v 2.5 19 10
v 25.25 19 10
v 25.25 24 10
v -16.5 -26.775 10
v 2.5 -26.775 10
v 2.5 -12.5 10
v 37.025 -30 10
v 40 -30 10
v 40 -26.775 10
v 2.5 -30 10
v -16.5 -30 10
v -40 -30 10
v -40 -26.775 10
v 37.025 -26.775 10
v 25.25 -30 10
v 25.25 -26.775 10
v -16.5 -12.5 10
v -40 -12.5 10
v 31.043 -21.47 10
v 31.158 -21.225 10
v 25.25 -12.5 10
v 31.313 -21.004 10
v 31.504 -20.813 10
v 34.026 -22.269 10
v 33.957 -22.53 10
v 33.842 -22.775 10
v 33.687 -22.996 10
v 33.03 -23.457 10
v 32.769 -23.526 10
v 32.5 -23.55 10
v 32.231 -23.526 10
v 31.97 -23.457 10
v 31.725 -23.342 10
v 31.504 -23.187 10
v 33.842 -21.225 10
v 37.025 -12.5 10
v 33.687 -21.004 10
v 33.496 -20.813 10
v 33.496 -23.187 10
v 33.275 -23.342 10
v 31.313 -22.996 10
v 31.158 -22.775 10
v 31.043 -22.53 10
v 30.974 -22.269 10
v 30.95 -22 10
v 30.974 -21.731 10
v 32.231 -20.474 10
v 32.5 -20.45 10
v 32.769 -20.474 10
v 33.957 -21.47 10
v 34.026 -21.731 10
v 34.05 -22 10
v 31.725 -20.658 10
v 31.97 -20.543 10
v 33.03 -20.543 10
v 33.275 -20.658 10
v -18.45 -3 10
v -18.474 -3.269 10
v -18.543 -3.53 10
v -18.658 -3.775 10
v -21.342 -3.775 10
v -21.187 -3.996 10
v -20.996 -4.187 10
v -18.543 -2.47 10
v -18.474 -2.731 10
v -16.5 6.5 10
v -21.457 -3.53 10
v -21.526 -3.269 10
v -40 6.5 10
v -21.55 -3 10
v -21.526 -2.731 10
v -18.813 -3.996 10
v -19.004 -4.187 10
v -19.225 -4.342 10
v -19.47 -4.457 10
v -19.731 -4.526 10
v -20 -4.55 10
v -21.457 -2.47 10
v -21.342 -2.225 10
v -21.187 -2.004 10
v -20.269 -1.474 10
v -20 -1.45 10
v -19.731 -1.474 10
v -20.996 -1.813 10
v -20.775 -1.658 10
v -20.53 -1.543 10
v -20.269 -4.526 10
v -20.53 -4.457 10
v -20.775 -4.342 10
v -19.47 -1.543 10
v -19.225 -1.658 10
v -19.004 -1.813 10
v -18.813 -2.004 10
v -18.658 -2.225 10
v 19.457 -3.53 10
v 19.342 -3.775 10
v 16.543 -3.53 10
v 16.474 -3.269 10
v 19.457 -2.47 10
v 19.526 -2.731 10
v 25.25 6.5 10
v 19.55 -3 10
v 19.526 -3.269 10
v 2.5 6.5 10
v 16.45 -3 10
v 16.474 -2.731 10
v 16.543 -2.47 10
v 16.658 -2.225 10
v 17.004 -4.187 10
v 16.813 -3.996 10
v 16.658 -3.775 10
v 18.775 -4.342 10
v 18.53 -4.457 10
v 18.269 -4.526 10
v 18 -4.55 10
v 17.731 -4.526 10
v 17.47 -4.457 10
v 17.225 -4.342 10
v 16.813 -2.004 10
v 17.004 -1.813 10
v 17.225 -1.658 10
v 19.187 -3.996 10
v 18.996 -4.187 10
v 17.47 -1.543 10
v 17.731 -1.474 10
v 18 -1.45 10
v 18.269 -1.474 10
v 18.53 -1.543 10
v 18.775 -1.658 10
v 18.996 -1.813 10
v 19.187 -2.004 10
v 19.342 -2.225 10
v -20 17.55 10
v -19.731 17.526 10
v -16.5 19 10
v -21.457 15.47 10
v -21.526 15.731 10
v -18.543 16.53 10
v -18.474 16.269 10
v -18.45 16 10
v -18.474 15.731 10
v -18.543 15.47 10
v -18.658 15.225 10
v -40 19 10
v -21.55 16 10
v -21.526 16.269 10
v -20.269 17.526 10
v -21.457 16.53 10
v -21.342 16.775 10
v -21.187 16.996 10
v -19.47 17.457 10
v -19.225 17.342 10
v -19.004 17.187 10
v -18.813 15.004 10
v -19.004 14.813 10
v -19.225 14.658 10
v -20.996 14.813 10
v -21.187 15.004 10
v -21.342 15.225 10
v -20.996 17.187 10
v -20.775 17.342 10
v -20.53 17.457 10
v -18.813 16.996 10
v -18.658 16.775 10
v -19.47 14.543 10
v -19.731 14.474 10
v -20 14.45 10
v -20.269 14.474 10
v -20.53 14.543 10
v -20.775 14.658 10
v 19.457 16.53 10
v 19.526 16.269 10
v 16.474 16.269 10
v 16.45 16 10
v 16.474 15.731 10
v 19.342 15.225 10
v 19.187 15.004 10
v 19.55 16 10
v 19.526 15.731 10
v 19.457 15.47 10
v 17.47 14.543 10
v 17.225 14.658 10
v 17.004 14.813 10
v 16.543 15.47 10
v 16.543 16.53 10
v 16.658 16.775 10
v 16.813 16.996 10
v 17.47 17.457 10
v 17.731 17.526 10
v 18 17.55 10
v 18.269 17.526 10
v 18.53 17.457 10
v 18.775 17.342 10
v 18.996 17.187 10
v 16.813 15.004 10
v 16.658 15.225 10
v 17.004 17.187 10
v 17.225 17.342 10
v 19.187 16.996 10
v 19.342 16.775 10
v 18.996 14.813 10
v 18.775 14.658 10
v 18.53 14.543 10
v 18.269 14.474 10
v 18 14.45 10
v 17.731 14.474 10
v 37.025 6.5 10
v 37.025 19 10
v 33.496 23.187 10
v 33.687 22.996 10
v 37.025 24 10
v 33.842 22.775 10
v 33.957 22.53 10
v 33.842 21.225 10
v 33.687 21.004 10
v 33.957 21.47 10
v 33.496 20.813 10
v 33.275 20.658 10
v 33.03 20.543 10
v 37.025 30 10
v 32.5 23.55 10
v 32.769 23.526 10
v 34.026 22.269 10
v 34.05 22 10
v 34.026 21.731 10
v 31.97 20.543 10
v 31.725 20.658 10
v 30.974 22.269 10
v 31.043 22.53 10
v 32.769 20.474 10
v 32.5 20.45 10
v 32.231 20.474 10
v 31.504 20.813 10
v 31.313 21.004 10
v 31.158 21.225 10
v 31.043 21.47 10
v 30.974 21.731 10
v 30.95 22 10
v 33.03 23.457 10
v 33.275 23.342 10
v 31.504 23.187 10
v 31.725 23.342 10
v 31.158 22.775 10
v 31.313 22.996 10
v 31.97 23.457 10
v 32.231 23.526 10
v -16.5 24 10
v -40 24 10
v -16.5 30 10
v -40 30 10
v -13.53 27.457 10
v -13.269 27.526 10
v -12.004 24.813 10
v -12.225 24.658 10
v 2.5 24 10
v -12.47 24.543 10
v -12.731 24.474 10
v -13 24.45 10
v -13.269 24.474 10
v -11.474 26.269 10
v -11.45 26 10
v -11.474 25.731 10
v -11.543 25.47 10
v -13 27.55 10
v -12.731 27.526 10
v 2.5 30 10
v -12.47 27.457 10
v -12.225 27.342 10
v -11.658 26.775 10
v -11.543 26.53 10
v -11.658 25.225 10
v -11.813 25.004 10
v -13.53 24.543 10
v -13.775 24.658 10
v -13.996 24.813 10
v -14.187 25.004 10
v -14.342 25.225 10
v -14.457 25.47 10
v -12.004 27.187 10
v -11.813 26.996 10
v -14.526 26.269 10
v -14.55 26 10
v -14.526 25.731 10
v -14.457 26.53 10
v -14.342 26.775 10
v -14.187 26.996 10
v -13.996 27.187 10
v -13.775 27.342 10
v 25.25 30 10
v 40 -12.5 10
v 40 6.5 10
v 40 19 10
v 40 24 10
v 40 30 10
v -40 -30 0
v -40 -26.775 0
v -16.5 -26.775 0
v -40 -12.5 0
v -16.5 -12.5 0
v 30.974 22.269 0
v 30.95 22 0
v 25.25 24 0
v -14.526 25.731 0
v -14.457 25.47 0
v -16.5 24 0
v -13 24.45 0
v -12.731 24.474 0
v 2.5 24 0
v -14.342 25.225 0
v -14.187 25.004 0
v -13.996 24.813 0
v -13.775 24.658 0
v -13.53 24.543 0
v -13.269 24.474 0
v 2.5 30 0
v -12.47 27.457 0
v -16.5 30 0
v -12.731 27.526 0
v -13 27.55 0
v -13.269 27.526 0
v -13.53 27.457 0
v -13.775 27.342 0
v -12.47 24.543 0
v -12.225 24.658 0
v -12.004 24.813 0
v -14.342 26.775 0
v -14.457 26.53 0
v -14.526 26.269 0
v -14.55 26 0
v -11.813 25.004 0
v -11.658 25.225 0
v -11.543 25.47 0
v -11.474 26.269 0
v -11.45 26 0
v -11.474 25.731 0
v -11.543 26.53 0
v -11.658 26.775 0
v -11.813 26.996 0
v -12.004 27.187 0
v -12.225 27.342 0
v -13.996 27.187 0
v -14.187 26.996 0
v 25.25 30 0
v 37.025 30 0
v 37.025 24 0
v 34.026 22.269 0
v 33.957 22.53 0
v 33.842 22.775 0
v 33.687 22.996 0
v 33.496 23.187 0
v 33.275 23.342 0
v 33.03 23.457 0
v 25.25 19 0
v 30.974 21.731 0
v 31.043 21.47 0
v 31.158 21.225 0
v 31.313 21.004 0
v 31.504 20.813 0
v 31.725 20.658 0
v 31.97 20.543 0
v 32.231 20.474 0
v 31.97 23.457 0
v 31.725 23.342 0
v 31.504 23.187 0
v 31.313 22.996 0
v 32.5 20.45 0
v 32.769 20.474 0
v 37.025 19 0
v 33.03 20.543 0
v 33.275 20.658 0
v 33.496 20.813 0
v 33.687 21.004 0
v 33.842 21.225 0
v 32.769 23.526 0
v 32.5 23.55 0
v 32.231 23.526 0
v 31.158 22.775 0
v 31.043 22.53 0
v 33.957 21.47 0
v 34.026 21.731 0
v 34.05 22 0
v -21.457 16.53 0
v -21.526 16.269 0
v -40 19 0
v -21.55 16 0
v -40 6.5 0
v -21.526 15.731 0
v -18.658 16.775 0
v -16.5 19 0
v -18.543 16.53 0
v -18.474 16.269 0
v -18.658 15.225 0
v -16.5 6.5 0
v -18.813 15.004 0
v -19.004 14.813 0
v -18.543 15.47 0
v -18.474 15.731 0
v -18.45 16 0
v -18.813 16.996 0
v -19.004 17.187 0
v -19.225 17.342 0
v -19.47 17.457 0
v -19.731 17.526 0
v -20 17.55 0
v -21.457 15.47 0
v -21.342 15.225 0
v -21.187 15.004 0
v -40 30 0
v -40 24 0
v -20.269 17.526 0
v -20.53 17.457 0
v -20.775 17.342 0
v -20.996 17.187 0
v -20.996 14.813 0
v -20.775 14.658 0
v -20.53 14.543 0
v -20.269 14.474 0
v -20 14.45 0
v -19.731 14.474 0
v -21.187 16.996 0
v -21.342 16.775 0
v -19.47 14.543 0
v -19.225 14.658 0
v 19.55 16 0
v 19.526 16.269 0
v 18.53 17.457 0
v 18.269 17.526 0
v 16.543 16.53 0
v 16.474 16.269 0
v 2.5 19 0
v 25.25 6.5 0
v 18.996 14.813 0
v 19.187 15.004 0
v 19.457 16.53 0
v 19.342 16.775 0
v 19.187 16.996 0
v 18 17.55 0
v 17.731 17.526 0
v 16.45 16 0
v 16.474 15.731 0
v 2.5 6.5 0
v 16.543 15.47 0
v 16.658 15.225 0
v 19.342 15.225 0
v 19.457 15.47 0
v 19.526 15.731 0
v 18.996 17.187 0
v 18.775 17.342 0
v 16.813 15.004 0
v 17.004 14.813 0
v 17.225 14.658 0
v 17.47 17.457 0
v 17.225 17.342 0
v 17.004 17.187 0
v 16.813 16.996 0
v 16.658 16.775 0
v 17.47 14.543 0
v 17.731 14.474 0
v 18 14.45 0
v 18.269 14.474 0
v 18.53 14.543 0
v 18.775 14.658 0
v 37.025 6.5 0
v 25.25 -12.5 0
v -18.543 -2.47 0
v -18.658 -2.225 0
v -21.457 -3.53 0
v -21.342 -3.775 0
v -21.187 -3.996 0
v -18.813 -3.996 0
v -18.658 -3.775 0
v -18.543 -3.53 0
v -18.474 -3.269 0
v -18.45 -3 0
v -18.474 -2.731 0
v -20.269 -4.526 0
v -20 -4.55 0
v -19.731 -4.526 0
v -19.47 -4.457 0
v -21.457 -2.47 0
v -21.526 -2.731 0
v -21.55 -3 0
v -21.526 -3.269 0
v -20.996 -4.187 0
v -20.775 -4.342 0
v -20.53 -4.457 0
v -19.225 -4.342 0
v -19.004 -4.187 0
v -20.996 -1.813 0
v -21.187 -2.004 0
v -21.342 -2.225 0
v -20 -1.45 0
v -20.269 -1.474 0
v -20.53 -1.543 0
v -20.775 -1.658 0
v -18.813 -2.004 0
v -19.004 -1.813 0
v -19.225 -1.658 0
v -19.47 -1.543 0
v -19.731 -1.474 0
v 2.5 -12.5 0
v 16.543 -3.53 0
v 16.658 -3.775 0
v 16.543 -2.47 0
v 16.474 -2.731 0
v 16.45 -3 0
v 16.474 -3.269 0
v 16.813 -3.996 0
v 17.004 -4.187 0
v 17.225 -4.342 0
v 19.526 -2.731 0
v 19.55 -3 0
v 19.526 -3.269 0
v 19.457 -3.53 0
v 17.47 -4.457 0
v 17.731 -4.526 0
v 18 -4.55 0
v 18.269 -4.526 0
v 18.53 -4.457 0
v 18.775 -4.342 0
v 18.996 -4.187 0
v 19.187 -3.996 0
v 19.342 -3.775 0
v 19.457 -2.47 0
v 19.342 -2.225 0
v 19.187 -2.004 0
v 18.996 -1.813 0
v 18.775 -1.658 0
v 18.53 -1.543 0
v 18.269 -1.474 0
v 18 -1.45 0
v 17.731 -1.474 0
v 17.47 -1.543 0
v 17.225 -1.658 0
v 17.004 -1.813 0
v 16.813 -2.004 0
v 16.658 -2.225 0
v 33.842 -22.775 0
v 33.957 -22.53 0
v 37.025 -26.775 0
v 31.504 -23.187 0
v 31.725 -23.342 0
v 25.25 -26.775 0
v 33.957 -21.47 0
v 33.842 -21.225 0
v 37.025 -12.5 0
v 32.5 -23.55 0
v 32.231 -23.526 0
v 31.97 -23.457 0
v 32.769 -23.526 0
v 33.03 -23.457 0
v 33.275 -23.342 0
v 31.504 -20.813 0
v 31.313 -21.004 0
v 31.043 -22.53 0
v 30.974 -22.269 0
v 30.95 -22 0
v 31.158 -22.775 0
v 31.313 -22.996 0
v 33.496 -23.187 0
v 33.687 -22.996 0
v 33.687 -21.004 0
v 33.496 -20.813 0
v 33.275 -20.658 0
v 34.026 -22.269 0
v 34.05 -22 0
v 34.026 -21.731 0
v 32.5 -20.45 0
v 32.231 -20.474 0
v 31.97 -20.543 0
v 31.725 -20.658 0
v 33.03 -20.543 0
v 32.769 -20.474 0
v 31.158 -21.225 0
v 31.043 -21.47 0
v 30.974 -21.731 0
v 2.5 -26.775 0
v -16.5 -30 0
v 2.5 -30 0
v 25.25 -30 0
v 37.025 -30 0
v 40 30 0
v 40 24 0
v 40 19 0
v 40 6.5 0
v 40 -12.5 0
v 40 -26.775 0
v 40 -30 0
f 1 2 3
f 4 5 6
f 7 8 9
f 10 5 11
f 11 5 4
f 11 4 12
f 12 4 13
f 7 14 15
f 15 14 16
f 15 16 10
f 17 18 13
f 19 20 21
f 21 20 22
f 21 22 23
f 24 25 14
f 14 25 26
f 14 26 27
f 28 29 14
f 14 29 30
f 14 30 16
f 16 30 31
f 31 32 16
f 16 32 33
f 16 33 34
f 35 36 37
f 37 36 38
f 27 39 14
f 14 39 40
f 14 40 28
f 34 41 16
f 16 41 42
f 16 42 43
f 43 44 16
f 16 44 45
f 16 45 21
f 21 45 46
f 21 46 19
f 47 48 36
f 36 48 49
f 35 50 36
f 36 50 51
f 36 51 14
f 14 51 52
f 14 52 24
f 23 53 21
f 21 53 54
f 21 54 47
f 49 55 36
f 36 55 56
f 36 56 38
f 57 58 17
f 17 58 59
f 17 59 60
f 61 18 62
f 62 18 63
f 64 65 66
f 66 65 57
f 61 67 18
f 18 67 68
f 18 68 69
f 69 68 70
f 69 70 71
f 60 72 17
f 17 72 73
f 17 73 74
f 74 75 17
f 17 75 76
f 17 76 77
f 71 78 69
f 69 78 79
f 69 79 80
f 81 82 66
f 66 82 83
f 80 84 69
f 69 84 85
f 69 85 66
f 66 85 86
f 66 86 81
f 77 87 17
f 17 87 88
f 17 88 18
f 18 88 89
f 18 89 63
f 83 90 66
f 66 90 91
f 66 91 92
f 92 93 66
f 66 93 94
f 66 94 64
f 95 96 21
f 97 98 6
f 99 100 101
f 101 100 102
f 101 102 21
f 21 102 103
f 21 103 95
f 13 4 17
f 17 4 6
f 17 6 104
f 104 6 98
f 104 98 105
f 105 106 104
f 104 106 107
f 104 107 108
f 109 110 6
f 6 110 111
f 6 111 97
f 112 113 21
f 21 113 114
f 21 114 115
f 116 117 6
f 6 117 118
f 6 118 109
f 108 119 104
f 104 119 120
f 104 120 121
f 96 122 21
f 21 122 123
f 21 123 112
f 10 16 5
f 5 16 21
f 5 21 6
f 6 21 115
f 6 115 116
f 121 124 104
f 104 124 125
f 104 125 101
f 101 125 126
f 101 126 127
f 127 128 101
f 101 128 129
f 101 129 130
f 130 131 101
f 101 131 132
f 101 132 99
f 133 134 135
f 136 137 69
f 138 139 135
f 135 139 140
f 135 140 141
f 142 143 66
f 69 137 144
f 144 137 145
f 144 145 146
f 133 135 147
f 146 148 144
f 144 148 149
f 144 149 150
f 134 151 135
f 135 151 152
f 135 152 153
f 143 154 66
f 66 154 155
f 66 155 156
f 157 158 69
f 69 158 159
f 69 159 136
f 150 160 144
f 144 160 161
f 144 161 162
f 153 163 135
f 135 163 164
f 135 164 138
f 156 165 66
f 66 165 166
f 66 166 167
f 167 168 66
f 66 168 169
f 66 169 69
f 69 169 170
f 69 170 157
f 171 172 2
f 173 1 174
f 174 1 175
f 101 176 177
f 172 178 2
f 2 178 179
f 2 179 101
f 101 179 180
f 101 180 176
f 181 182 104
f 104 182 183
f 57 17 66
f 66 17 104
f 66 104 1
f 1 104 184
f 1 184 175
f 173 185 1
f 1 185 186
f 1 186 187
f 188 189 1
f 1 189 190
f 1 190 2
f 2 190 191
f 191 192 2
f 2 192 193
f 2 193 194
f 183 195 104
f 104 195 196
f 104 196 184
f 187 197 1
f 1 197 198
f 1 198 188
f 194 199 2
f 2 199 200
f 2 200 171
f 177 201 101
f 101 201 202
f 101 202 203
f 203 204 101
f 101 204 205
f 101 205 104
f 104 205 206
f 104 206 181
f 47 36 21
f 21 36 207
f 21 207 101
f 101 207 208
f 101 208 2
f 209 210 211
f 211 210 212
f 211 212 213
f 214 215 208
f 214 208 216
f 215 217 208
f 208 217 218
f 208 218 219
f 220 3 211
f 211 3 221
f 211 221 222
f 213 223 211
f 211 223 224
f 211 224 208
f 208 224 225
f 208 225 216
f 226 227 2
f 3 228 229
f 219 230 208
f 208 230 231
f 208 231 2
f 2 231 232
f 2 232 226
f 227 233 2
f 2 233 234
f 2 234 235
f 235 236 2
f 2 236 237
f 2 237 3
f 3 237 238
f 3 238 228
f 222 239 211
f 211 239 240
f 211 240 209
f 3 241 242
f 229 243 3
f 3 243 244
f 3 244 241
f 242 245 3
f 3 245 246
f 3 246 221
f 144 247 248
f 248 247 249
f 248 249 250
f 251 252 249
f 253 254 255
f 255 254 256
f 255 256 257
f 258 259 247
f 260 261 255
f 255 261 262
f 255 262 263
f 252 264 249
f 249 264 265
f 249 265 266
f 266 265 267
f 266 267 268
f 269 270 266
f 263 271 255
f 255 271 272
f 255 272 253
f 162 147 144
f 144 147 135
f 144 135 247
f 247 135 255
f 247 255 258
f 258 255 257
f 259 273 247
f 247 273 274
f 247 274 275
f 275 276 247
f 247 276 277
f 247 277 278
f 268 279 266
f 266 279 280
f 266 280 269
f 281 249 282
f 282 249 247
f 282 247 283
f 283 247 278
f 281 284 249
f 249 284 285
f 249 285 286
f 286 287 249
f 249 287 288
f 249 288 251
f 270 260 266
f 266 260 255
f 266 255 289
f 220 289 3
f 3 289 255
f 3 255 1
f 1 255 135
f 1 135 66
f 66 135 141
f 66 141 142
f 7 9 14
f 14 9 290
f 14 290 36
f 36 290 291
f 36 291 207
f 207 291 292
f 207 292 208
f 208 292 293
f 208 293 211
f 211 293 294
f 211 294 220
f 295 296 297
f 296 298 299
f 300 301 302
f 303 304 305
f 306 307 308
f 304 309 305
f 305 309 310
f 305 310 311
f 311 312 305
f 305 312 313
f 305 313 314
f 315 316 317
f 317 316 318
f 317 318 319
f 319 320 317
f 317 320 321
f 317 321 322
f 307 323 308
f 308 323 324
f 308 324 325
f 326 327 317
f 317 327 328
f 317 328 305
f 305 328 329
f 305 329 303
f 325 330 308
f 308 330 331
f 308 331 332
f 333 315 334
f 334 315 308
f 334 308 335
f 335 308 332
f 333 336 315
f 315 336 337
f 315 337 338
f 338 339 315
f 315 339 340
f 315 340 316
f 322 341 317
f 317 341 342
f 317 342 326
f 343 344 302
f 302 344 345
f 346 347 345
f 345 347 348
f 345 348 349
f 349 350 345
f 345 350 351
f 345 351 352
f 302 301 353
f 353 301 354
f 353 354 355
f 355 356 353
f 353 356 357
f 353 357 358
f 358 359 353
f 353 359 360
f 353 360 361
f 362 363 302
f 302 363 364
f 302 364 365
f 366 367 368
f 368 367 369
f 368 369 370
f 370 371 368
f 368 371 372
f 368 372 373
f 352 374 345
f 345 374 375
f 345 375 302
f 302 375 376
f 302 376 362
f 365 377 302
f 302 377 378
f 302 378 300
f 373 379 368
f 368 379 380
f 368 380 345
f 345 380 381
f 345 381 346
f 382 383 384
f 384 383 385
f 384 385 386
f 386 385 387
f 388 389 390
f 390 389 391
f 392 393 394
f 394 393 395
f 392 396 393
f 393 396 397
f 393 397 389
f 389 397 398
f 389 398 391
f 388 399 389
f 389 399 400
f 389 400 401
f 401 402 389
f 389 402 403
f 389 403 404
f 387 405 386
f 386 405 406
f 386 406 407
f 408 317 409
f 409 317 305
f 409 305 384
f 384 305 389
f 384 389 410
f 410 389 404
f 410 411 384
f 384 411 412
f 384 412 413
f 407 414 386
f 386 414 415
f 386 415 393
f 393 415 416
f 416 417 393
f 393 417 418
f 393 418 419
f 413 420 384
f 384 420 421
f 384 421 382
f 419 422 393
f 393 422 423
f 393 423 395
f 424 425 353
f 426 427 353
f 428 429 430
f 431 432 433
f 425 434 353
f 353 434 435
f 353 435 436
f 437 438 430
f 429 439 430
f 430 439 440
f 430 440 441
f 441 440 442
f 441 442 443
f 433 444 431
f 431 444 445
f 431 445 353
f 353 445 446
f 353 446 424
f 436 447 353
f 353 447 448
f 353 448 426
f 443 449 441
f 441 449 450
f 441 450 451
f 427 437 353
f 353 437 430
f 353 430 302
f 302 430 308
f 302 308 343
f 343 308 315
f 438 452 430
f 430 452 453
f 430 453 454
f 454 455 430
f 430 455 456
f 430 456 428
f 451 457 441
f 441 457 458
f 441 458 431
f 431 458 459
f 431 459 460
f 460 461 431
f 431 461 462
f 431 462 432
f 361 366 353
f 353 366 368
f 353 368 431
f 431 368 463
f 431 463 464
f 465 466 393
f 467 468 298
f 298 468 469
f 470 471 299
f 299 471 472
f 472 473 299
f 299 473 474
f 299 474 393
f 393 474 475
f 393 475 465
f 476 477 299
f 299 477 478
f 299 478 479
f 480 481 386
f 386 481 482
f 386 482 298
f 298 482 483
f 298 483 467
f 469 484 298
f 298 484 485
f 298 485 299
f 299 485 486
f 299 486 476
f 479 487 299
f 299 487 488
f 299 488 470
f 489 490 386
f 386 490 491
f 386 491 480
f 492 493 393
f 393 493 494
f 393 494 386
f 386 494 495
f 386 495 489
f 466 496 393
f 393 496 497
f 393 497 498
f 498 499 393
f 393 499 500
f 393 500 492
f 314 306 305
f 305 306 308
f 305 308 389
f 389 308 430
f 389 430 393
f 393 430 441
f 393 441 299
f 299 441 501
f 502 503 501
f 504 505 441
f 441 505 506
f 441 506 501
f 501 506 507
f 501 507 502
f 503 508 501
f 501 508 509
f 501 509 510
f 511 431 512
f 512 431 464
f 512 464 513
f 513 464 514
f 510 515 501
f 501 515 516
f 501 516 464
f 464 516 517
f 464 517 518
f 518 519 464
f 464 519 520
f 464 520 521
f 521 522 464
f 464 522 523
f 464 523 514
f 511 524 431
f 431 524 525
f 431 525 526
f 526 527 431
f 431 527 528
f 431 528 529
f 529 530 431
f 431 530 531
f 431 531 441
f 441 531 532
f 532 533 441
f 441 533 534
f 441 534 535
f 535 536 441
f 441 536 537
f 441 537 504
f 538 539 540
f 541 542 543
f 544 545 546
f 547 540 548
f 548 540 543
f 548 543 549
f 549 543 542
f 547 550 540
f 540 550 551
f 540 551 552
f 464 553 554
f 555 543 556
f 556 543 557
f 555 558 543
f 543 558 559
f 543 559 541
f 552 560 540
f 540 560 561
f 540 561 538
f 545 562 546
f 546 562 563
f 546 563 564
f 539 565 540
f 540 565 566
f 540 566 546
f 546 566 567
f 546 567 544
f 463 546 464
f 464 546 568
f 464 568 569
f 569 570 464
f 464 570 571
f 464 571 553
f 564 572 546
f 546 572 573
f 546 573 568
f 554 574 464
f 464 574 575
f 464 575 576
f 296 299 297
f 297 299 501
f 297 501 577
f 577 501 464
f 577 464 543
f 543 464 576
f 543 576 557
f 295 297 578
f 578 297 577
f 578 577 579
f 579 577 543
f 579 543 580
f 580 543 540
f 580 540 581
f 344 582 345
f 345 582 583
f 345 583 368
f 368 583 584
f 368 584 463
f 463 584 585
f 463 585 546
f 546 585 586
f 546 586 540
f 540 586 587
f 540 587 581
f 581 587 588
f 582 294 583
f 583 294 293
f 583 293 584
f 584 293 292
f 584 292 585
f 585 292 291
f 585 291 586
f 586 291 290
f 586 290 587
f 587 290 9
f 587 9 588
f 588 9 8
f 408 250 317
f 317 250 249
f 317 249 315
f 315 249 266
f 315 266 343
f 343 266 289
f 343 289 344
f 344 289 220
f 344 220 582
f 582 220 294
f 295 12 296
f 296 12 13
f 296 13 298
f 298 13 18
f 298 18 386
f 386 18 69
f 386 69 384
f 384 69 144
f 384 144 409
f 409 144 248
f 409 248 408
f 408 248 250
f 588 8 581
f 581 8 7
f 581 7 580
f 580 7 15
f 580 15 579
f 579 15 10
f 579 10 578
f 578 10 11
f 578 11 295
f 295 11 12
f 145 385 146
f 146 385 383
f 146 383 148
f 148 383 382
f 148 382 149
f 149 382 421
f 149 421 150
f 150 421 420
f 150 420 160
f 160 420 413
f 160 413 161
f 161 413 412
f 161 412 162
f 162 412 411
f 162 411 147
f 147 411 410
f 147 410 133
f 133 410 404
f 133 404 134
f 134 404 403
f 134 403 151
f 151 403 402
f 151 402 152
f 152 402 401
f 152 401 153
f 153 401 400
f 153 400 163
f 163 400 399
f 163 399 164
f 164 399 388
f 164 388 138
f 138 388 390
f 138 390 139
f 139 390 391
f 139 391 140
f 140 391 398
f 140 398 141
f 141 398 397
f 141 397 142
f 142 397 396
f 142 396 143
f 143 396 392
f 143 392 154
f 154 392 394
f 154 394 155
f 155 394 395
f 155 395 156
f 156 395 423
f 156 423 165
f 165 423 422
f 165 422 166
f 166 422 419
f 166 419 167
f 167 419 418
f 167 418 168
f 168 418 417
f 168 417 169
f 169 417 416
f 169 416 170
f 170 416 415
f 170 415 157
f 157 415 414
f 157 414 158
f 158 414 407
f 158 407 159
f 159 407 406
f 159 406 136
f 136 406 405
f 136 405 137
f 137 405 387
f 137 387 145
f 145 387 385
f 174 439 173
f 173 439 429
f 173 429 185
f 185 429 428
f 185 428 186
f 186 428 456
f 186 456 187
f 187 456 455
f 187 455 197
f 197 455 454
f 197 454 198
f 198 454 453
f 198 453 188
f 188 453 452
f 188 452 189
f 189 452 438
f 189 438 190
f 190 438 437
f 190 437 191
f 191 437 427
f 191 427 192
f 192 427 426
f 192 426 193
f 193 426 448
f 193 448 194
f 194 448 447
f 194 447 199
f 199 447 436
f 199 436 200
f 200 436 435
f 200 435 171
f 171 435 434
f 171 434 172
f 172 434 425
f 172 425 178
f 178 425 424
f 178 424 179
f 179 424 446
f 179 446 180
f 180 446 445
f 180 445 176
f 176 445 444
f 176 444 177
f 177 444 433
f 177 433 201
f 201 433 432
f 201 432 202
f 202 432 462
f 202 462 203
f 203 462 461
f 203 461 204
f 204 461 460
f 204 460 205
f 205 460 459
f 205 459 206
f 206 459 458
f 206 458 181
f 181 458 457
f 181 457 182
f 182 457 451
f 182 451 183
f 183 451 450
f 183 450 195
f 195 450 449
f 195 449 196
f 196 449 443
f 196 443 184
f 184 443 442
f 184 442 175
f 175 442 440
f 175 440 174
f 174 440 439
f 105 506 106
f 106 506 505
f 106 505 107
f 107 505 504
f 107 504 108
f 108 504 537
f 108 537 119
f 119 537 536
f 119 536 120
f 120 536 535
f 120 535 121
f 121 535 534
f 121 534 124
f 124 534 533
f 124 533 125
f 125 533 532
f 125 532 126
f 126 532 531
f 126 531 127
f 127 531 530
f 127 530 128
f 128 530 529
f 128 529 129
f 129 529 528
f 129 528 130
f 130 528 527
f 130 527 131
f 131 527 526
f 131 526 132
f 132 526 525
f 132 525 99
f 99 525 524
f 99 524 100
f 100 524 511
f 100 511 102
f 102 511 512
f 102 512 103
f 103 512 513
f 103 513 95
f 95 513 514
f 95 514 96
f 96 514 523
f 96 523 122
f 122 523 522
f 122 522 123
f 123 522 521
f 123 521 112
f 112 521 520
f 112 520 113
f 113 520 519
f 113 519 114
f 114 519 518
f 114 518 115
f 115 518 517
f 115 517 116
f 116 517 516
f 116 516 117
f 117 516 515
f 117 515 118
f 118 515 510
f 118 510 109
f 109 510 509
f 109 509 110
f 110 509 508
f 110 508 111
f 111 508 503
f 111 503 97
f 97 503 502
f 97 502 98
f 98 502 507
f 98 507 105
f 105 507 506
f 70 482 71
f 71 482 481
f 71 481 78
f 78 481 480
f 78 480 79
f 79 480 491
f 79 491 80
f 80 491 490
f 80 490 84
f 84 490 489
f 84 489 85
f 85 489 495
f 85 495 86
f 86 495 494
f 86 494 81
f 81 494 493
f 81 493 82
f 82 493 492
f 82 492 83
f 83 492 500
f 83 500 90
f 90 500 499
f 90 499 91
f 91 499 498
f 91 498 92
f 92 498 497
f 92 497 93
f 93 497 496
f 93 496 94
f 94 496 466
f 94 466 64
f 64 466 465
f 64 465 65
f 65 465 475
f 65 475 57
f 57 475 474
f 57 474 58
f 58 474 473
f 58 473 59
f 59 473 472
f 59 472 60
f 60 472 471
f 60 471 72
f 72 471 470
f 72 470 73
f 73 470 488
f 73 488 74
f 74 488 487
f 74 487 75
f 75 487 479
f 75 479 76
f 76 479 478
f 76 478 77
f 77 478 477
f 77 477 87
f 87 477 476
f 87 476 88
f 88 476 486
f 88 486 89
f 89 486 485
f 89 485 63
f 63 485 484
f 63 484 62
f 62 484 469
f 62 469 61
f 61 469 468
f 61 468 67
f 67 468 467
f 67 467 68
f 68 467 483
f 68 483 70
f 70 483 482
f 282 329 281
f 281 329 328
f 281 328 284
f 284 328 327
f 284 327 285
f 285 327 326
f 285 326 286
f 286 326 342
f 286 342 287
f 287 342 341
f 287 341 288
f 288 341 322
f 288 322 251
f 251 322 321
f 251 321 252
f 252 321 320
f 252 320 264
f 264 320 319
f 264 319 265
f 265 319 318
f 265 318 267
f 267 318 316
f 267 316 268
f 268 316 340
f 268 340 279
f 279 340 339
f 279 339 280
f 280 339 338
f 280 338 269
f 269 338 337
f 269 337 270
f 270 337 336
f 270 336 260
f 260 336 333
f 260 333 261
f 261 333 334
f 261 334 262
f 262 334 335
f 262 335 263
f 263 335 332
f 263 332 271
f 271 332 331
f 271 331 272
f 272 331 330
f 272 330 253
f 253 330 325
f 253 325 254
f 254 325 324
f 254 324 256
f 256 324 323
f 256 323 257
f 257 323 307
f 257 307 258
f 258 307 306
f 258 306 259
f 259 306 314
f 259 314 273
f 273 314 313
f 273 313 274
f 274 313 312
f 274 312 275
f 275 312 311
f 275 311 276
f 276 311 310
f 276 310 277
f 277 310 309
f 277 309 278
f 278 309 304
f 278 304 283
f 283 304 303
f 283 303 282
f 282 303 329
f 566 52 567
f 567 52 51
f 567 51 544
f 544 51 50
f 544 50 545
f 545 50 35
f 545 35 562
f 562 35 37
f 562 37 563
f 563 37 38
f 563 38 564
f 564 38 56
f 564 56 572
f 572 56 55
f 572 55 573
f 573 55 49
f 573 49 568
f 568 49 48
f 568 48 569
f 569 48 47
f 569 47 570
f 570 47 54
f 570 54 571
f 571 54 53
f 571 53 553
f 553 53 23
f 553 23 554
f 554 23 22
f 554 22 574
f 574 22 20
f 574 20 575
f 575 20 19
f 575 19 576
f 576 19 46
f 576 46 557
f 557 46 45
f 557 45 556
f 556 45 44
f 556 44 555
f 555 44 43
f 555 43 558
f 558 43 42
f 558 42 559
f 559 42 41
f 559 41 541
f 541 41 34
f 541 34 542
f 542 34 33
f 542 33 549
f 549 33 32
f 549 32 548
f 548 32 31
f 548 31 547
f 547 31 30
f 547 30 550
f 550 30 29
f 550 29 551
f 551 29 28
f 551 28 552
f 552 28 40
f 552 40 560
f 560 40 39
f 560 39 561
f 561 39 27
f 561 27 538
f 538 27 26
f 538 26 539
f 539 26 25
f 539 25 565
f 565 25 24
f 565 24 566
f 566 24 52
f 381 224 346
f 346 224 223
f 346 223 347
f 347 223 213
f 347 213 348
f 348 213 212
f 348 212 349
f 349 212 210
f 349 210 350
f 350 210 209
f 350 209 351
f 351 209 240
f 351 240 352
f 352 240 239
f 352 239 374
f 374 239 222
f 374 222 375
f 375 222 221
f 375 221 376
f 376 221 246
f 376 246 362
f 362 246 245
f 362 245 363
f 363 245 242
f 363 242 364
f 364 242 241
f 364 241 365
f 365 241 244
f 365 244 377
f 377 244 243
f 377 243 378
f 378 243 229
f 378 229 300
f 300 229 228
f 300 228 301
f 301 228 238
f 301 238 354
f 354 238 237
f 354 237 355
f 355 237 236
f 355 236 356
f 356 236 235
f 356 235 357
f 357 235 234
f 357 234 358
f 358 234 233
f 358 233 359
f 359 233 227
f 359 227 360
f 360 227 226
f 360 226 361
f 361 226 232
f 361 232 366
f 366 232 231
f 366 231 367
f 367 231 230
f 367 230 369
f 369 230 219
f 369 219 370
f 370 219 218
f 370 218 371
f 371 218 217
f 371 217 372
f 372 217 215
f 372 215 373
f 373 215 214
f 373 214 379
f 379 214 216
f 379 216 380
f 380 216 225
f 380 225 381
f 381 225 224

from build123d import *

# Parameters (mm, degrees)
SKETCH1_W           = 80
SKETCH1_H           = 60
SKETCH1_R           = 1.55
BOSS_EXTRUDE1_DEPTH = 10
CUT_EXTRUDE1_REACH  = 52.99
SKETCH2_R           = 1.55
CUT_EXTRUDE2_REACH  = 52.99
SKETCH3_R           = 1.55


with BuildPart() as part:
    # Sketch1 → Boss-Extrude1 (new body)
    with BuildSketch(Plane.XY):
        Rectangle(SKETCH1_W, SKETCH1_H)
        with Locations((-20, 16)):
            Circle(SKETCH1_R, mode=Mode.SUBTRACT)
        with Locations((18, 16)):
            Circle(SKETCH1_R, mode=Mode.SUBTRACT)
        with Locations((18, -3)):
            Circle(SKETCH1_R, mode=Mode.SUBTRACT)
        with Locations((-20, -3)):
            Circle(SKETCH1_R, mode=Mode.SUBTRACT)
    extrude(amount=BOSS_EXTRUDE1_DEPTH)

    # Sketch2 → Cut-Extrude1 (cut, up to next)
    with BuildSketch(Plane(origin=(0, 0, 0), x_dir=(-1, 0, 0), z_dir=(0, 0, -1)), mode=Mode.PRIVATE) as cut_extrude1_sk1:
        with Locations((13, 26)):
            Circle(SKETCH2_R)
    cut_extrude1_tool1 = extrude(cut_extrude1_sk1.sketch, amount=-CUT_EXTRUDE1_REACH, mode=Mode.PRIVATE) & part.part
    add(cut_extrude1_tool1.solids().sort_by_distance((-13, 26, 0))[0], mode=Mode.SUBTRACT)

    # Sketch3 → Cut-Extrude2 (cut, up to next)
    with BuildSketch(Plane.XY.offset(10), mode=Mode.PRIVATE) as cut_extrude2_sk1:
        with Locations((32.5, 22)):
            Circle(SKETCH3_R)
    cut_extrude2_tool1 = extrude(cut_extrude2_sk1.sketch, amount=-CUT_EXTRUDE2_REACH, mode=Mode.PRIVATE) & part.part
    # Sketch3 → Cut-Extrude2 (cut, up to next)
    with BuildSketch(Plane.XY.offset(10), mode=Mode.PRIVATE) as cut_extrude2_sk2:
        with Locations((32.5, -22)):
            Circle(SKETCH3_R)
    cut_extrude2_tool2 = extrude(cut_extrude2_sk2.sketch, amount=-CUT_EXTRUDE2_REACH, mode=Mode.PRIVATE) & part.part
    add(cut_extrude2_tool1.solids().sort_by_distance((32.5, 22, 10))[0], mode=Mode.SUBTRACT)
    add(cut_extrude2_tool2.solids().sort_by_distance((32.5, -22, 10))[0], mode=Mode.SUBTRACT)


solid = part.part
